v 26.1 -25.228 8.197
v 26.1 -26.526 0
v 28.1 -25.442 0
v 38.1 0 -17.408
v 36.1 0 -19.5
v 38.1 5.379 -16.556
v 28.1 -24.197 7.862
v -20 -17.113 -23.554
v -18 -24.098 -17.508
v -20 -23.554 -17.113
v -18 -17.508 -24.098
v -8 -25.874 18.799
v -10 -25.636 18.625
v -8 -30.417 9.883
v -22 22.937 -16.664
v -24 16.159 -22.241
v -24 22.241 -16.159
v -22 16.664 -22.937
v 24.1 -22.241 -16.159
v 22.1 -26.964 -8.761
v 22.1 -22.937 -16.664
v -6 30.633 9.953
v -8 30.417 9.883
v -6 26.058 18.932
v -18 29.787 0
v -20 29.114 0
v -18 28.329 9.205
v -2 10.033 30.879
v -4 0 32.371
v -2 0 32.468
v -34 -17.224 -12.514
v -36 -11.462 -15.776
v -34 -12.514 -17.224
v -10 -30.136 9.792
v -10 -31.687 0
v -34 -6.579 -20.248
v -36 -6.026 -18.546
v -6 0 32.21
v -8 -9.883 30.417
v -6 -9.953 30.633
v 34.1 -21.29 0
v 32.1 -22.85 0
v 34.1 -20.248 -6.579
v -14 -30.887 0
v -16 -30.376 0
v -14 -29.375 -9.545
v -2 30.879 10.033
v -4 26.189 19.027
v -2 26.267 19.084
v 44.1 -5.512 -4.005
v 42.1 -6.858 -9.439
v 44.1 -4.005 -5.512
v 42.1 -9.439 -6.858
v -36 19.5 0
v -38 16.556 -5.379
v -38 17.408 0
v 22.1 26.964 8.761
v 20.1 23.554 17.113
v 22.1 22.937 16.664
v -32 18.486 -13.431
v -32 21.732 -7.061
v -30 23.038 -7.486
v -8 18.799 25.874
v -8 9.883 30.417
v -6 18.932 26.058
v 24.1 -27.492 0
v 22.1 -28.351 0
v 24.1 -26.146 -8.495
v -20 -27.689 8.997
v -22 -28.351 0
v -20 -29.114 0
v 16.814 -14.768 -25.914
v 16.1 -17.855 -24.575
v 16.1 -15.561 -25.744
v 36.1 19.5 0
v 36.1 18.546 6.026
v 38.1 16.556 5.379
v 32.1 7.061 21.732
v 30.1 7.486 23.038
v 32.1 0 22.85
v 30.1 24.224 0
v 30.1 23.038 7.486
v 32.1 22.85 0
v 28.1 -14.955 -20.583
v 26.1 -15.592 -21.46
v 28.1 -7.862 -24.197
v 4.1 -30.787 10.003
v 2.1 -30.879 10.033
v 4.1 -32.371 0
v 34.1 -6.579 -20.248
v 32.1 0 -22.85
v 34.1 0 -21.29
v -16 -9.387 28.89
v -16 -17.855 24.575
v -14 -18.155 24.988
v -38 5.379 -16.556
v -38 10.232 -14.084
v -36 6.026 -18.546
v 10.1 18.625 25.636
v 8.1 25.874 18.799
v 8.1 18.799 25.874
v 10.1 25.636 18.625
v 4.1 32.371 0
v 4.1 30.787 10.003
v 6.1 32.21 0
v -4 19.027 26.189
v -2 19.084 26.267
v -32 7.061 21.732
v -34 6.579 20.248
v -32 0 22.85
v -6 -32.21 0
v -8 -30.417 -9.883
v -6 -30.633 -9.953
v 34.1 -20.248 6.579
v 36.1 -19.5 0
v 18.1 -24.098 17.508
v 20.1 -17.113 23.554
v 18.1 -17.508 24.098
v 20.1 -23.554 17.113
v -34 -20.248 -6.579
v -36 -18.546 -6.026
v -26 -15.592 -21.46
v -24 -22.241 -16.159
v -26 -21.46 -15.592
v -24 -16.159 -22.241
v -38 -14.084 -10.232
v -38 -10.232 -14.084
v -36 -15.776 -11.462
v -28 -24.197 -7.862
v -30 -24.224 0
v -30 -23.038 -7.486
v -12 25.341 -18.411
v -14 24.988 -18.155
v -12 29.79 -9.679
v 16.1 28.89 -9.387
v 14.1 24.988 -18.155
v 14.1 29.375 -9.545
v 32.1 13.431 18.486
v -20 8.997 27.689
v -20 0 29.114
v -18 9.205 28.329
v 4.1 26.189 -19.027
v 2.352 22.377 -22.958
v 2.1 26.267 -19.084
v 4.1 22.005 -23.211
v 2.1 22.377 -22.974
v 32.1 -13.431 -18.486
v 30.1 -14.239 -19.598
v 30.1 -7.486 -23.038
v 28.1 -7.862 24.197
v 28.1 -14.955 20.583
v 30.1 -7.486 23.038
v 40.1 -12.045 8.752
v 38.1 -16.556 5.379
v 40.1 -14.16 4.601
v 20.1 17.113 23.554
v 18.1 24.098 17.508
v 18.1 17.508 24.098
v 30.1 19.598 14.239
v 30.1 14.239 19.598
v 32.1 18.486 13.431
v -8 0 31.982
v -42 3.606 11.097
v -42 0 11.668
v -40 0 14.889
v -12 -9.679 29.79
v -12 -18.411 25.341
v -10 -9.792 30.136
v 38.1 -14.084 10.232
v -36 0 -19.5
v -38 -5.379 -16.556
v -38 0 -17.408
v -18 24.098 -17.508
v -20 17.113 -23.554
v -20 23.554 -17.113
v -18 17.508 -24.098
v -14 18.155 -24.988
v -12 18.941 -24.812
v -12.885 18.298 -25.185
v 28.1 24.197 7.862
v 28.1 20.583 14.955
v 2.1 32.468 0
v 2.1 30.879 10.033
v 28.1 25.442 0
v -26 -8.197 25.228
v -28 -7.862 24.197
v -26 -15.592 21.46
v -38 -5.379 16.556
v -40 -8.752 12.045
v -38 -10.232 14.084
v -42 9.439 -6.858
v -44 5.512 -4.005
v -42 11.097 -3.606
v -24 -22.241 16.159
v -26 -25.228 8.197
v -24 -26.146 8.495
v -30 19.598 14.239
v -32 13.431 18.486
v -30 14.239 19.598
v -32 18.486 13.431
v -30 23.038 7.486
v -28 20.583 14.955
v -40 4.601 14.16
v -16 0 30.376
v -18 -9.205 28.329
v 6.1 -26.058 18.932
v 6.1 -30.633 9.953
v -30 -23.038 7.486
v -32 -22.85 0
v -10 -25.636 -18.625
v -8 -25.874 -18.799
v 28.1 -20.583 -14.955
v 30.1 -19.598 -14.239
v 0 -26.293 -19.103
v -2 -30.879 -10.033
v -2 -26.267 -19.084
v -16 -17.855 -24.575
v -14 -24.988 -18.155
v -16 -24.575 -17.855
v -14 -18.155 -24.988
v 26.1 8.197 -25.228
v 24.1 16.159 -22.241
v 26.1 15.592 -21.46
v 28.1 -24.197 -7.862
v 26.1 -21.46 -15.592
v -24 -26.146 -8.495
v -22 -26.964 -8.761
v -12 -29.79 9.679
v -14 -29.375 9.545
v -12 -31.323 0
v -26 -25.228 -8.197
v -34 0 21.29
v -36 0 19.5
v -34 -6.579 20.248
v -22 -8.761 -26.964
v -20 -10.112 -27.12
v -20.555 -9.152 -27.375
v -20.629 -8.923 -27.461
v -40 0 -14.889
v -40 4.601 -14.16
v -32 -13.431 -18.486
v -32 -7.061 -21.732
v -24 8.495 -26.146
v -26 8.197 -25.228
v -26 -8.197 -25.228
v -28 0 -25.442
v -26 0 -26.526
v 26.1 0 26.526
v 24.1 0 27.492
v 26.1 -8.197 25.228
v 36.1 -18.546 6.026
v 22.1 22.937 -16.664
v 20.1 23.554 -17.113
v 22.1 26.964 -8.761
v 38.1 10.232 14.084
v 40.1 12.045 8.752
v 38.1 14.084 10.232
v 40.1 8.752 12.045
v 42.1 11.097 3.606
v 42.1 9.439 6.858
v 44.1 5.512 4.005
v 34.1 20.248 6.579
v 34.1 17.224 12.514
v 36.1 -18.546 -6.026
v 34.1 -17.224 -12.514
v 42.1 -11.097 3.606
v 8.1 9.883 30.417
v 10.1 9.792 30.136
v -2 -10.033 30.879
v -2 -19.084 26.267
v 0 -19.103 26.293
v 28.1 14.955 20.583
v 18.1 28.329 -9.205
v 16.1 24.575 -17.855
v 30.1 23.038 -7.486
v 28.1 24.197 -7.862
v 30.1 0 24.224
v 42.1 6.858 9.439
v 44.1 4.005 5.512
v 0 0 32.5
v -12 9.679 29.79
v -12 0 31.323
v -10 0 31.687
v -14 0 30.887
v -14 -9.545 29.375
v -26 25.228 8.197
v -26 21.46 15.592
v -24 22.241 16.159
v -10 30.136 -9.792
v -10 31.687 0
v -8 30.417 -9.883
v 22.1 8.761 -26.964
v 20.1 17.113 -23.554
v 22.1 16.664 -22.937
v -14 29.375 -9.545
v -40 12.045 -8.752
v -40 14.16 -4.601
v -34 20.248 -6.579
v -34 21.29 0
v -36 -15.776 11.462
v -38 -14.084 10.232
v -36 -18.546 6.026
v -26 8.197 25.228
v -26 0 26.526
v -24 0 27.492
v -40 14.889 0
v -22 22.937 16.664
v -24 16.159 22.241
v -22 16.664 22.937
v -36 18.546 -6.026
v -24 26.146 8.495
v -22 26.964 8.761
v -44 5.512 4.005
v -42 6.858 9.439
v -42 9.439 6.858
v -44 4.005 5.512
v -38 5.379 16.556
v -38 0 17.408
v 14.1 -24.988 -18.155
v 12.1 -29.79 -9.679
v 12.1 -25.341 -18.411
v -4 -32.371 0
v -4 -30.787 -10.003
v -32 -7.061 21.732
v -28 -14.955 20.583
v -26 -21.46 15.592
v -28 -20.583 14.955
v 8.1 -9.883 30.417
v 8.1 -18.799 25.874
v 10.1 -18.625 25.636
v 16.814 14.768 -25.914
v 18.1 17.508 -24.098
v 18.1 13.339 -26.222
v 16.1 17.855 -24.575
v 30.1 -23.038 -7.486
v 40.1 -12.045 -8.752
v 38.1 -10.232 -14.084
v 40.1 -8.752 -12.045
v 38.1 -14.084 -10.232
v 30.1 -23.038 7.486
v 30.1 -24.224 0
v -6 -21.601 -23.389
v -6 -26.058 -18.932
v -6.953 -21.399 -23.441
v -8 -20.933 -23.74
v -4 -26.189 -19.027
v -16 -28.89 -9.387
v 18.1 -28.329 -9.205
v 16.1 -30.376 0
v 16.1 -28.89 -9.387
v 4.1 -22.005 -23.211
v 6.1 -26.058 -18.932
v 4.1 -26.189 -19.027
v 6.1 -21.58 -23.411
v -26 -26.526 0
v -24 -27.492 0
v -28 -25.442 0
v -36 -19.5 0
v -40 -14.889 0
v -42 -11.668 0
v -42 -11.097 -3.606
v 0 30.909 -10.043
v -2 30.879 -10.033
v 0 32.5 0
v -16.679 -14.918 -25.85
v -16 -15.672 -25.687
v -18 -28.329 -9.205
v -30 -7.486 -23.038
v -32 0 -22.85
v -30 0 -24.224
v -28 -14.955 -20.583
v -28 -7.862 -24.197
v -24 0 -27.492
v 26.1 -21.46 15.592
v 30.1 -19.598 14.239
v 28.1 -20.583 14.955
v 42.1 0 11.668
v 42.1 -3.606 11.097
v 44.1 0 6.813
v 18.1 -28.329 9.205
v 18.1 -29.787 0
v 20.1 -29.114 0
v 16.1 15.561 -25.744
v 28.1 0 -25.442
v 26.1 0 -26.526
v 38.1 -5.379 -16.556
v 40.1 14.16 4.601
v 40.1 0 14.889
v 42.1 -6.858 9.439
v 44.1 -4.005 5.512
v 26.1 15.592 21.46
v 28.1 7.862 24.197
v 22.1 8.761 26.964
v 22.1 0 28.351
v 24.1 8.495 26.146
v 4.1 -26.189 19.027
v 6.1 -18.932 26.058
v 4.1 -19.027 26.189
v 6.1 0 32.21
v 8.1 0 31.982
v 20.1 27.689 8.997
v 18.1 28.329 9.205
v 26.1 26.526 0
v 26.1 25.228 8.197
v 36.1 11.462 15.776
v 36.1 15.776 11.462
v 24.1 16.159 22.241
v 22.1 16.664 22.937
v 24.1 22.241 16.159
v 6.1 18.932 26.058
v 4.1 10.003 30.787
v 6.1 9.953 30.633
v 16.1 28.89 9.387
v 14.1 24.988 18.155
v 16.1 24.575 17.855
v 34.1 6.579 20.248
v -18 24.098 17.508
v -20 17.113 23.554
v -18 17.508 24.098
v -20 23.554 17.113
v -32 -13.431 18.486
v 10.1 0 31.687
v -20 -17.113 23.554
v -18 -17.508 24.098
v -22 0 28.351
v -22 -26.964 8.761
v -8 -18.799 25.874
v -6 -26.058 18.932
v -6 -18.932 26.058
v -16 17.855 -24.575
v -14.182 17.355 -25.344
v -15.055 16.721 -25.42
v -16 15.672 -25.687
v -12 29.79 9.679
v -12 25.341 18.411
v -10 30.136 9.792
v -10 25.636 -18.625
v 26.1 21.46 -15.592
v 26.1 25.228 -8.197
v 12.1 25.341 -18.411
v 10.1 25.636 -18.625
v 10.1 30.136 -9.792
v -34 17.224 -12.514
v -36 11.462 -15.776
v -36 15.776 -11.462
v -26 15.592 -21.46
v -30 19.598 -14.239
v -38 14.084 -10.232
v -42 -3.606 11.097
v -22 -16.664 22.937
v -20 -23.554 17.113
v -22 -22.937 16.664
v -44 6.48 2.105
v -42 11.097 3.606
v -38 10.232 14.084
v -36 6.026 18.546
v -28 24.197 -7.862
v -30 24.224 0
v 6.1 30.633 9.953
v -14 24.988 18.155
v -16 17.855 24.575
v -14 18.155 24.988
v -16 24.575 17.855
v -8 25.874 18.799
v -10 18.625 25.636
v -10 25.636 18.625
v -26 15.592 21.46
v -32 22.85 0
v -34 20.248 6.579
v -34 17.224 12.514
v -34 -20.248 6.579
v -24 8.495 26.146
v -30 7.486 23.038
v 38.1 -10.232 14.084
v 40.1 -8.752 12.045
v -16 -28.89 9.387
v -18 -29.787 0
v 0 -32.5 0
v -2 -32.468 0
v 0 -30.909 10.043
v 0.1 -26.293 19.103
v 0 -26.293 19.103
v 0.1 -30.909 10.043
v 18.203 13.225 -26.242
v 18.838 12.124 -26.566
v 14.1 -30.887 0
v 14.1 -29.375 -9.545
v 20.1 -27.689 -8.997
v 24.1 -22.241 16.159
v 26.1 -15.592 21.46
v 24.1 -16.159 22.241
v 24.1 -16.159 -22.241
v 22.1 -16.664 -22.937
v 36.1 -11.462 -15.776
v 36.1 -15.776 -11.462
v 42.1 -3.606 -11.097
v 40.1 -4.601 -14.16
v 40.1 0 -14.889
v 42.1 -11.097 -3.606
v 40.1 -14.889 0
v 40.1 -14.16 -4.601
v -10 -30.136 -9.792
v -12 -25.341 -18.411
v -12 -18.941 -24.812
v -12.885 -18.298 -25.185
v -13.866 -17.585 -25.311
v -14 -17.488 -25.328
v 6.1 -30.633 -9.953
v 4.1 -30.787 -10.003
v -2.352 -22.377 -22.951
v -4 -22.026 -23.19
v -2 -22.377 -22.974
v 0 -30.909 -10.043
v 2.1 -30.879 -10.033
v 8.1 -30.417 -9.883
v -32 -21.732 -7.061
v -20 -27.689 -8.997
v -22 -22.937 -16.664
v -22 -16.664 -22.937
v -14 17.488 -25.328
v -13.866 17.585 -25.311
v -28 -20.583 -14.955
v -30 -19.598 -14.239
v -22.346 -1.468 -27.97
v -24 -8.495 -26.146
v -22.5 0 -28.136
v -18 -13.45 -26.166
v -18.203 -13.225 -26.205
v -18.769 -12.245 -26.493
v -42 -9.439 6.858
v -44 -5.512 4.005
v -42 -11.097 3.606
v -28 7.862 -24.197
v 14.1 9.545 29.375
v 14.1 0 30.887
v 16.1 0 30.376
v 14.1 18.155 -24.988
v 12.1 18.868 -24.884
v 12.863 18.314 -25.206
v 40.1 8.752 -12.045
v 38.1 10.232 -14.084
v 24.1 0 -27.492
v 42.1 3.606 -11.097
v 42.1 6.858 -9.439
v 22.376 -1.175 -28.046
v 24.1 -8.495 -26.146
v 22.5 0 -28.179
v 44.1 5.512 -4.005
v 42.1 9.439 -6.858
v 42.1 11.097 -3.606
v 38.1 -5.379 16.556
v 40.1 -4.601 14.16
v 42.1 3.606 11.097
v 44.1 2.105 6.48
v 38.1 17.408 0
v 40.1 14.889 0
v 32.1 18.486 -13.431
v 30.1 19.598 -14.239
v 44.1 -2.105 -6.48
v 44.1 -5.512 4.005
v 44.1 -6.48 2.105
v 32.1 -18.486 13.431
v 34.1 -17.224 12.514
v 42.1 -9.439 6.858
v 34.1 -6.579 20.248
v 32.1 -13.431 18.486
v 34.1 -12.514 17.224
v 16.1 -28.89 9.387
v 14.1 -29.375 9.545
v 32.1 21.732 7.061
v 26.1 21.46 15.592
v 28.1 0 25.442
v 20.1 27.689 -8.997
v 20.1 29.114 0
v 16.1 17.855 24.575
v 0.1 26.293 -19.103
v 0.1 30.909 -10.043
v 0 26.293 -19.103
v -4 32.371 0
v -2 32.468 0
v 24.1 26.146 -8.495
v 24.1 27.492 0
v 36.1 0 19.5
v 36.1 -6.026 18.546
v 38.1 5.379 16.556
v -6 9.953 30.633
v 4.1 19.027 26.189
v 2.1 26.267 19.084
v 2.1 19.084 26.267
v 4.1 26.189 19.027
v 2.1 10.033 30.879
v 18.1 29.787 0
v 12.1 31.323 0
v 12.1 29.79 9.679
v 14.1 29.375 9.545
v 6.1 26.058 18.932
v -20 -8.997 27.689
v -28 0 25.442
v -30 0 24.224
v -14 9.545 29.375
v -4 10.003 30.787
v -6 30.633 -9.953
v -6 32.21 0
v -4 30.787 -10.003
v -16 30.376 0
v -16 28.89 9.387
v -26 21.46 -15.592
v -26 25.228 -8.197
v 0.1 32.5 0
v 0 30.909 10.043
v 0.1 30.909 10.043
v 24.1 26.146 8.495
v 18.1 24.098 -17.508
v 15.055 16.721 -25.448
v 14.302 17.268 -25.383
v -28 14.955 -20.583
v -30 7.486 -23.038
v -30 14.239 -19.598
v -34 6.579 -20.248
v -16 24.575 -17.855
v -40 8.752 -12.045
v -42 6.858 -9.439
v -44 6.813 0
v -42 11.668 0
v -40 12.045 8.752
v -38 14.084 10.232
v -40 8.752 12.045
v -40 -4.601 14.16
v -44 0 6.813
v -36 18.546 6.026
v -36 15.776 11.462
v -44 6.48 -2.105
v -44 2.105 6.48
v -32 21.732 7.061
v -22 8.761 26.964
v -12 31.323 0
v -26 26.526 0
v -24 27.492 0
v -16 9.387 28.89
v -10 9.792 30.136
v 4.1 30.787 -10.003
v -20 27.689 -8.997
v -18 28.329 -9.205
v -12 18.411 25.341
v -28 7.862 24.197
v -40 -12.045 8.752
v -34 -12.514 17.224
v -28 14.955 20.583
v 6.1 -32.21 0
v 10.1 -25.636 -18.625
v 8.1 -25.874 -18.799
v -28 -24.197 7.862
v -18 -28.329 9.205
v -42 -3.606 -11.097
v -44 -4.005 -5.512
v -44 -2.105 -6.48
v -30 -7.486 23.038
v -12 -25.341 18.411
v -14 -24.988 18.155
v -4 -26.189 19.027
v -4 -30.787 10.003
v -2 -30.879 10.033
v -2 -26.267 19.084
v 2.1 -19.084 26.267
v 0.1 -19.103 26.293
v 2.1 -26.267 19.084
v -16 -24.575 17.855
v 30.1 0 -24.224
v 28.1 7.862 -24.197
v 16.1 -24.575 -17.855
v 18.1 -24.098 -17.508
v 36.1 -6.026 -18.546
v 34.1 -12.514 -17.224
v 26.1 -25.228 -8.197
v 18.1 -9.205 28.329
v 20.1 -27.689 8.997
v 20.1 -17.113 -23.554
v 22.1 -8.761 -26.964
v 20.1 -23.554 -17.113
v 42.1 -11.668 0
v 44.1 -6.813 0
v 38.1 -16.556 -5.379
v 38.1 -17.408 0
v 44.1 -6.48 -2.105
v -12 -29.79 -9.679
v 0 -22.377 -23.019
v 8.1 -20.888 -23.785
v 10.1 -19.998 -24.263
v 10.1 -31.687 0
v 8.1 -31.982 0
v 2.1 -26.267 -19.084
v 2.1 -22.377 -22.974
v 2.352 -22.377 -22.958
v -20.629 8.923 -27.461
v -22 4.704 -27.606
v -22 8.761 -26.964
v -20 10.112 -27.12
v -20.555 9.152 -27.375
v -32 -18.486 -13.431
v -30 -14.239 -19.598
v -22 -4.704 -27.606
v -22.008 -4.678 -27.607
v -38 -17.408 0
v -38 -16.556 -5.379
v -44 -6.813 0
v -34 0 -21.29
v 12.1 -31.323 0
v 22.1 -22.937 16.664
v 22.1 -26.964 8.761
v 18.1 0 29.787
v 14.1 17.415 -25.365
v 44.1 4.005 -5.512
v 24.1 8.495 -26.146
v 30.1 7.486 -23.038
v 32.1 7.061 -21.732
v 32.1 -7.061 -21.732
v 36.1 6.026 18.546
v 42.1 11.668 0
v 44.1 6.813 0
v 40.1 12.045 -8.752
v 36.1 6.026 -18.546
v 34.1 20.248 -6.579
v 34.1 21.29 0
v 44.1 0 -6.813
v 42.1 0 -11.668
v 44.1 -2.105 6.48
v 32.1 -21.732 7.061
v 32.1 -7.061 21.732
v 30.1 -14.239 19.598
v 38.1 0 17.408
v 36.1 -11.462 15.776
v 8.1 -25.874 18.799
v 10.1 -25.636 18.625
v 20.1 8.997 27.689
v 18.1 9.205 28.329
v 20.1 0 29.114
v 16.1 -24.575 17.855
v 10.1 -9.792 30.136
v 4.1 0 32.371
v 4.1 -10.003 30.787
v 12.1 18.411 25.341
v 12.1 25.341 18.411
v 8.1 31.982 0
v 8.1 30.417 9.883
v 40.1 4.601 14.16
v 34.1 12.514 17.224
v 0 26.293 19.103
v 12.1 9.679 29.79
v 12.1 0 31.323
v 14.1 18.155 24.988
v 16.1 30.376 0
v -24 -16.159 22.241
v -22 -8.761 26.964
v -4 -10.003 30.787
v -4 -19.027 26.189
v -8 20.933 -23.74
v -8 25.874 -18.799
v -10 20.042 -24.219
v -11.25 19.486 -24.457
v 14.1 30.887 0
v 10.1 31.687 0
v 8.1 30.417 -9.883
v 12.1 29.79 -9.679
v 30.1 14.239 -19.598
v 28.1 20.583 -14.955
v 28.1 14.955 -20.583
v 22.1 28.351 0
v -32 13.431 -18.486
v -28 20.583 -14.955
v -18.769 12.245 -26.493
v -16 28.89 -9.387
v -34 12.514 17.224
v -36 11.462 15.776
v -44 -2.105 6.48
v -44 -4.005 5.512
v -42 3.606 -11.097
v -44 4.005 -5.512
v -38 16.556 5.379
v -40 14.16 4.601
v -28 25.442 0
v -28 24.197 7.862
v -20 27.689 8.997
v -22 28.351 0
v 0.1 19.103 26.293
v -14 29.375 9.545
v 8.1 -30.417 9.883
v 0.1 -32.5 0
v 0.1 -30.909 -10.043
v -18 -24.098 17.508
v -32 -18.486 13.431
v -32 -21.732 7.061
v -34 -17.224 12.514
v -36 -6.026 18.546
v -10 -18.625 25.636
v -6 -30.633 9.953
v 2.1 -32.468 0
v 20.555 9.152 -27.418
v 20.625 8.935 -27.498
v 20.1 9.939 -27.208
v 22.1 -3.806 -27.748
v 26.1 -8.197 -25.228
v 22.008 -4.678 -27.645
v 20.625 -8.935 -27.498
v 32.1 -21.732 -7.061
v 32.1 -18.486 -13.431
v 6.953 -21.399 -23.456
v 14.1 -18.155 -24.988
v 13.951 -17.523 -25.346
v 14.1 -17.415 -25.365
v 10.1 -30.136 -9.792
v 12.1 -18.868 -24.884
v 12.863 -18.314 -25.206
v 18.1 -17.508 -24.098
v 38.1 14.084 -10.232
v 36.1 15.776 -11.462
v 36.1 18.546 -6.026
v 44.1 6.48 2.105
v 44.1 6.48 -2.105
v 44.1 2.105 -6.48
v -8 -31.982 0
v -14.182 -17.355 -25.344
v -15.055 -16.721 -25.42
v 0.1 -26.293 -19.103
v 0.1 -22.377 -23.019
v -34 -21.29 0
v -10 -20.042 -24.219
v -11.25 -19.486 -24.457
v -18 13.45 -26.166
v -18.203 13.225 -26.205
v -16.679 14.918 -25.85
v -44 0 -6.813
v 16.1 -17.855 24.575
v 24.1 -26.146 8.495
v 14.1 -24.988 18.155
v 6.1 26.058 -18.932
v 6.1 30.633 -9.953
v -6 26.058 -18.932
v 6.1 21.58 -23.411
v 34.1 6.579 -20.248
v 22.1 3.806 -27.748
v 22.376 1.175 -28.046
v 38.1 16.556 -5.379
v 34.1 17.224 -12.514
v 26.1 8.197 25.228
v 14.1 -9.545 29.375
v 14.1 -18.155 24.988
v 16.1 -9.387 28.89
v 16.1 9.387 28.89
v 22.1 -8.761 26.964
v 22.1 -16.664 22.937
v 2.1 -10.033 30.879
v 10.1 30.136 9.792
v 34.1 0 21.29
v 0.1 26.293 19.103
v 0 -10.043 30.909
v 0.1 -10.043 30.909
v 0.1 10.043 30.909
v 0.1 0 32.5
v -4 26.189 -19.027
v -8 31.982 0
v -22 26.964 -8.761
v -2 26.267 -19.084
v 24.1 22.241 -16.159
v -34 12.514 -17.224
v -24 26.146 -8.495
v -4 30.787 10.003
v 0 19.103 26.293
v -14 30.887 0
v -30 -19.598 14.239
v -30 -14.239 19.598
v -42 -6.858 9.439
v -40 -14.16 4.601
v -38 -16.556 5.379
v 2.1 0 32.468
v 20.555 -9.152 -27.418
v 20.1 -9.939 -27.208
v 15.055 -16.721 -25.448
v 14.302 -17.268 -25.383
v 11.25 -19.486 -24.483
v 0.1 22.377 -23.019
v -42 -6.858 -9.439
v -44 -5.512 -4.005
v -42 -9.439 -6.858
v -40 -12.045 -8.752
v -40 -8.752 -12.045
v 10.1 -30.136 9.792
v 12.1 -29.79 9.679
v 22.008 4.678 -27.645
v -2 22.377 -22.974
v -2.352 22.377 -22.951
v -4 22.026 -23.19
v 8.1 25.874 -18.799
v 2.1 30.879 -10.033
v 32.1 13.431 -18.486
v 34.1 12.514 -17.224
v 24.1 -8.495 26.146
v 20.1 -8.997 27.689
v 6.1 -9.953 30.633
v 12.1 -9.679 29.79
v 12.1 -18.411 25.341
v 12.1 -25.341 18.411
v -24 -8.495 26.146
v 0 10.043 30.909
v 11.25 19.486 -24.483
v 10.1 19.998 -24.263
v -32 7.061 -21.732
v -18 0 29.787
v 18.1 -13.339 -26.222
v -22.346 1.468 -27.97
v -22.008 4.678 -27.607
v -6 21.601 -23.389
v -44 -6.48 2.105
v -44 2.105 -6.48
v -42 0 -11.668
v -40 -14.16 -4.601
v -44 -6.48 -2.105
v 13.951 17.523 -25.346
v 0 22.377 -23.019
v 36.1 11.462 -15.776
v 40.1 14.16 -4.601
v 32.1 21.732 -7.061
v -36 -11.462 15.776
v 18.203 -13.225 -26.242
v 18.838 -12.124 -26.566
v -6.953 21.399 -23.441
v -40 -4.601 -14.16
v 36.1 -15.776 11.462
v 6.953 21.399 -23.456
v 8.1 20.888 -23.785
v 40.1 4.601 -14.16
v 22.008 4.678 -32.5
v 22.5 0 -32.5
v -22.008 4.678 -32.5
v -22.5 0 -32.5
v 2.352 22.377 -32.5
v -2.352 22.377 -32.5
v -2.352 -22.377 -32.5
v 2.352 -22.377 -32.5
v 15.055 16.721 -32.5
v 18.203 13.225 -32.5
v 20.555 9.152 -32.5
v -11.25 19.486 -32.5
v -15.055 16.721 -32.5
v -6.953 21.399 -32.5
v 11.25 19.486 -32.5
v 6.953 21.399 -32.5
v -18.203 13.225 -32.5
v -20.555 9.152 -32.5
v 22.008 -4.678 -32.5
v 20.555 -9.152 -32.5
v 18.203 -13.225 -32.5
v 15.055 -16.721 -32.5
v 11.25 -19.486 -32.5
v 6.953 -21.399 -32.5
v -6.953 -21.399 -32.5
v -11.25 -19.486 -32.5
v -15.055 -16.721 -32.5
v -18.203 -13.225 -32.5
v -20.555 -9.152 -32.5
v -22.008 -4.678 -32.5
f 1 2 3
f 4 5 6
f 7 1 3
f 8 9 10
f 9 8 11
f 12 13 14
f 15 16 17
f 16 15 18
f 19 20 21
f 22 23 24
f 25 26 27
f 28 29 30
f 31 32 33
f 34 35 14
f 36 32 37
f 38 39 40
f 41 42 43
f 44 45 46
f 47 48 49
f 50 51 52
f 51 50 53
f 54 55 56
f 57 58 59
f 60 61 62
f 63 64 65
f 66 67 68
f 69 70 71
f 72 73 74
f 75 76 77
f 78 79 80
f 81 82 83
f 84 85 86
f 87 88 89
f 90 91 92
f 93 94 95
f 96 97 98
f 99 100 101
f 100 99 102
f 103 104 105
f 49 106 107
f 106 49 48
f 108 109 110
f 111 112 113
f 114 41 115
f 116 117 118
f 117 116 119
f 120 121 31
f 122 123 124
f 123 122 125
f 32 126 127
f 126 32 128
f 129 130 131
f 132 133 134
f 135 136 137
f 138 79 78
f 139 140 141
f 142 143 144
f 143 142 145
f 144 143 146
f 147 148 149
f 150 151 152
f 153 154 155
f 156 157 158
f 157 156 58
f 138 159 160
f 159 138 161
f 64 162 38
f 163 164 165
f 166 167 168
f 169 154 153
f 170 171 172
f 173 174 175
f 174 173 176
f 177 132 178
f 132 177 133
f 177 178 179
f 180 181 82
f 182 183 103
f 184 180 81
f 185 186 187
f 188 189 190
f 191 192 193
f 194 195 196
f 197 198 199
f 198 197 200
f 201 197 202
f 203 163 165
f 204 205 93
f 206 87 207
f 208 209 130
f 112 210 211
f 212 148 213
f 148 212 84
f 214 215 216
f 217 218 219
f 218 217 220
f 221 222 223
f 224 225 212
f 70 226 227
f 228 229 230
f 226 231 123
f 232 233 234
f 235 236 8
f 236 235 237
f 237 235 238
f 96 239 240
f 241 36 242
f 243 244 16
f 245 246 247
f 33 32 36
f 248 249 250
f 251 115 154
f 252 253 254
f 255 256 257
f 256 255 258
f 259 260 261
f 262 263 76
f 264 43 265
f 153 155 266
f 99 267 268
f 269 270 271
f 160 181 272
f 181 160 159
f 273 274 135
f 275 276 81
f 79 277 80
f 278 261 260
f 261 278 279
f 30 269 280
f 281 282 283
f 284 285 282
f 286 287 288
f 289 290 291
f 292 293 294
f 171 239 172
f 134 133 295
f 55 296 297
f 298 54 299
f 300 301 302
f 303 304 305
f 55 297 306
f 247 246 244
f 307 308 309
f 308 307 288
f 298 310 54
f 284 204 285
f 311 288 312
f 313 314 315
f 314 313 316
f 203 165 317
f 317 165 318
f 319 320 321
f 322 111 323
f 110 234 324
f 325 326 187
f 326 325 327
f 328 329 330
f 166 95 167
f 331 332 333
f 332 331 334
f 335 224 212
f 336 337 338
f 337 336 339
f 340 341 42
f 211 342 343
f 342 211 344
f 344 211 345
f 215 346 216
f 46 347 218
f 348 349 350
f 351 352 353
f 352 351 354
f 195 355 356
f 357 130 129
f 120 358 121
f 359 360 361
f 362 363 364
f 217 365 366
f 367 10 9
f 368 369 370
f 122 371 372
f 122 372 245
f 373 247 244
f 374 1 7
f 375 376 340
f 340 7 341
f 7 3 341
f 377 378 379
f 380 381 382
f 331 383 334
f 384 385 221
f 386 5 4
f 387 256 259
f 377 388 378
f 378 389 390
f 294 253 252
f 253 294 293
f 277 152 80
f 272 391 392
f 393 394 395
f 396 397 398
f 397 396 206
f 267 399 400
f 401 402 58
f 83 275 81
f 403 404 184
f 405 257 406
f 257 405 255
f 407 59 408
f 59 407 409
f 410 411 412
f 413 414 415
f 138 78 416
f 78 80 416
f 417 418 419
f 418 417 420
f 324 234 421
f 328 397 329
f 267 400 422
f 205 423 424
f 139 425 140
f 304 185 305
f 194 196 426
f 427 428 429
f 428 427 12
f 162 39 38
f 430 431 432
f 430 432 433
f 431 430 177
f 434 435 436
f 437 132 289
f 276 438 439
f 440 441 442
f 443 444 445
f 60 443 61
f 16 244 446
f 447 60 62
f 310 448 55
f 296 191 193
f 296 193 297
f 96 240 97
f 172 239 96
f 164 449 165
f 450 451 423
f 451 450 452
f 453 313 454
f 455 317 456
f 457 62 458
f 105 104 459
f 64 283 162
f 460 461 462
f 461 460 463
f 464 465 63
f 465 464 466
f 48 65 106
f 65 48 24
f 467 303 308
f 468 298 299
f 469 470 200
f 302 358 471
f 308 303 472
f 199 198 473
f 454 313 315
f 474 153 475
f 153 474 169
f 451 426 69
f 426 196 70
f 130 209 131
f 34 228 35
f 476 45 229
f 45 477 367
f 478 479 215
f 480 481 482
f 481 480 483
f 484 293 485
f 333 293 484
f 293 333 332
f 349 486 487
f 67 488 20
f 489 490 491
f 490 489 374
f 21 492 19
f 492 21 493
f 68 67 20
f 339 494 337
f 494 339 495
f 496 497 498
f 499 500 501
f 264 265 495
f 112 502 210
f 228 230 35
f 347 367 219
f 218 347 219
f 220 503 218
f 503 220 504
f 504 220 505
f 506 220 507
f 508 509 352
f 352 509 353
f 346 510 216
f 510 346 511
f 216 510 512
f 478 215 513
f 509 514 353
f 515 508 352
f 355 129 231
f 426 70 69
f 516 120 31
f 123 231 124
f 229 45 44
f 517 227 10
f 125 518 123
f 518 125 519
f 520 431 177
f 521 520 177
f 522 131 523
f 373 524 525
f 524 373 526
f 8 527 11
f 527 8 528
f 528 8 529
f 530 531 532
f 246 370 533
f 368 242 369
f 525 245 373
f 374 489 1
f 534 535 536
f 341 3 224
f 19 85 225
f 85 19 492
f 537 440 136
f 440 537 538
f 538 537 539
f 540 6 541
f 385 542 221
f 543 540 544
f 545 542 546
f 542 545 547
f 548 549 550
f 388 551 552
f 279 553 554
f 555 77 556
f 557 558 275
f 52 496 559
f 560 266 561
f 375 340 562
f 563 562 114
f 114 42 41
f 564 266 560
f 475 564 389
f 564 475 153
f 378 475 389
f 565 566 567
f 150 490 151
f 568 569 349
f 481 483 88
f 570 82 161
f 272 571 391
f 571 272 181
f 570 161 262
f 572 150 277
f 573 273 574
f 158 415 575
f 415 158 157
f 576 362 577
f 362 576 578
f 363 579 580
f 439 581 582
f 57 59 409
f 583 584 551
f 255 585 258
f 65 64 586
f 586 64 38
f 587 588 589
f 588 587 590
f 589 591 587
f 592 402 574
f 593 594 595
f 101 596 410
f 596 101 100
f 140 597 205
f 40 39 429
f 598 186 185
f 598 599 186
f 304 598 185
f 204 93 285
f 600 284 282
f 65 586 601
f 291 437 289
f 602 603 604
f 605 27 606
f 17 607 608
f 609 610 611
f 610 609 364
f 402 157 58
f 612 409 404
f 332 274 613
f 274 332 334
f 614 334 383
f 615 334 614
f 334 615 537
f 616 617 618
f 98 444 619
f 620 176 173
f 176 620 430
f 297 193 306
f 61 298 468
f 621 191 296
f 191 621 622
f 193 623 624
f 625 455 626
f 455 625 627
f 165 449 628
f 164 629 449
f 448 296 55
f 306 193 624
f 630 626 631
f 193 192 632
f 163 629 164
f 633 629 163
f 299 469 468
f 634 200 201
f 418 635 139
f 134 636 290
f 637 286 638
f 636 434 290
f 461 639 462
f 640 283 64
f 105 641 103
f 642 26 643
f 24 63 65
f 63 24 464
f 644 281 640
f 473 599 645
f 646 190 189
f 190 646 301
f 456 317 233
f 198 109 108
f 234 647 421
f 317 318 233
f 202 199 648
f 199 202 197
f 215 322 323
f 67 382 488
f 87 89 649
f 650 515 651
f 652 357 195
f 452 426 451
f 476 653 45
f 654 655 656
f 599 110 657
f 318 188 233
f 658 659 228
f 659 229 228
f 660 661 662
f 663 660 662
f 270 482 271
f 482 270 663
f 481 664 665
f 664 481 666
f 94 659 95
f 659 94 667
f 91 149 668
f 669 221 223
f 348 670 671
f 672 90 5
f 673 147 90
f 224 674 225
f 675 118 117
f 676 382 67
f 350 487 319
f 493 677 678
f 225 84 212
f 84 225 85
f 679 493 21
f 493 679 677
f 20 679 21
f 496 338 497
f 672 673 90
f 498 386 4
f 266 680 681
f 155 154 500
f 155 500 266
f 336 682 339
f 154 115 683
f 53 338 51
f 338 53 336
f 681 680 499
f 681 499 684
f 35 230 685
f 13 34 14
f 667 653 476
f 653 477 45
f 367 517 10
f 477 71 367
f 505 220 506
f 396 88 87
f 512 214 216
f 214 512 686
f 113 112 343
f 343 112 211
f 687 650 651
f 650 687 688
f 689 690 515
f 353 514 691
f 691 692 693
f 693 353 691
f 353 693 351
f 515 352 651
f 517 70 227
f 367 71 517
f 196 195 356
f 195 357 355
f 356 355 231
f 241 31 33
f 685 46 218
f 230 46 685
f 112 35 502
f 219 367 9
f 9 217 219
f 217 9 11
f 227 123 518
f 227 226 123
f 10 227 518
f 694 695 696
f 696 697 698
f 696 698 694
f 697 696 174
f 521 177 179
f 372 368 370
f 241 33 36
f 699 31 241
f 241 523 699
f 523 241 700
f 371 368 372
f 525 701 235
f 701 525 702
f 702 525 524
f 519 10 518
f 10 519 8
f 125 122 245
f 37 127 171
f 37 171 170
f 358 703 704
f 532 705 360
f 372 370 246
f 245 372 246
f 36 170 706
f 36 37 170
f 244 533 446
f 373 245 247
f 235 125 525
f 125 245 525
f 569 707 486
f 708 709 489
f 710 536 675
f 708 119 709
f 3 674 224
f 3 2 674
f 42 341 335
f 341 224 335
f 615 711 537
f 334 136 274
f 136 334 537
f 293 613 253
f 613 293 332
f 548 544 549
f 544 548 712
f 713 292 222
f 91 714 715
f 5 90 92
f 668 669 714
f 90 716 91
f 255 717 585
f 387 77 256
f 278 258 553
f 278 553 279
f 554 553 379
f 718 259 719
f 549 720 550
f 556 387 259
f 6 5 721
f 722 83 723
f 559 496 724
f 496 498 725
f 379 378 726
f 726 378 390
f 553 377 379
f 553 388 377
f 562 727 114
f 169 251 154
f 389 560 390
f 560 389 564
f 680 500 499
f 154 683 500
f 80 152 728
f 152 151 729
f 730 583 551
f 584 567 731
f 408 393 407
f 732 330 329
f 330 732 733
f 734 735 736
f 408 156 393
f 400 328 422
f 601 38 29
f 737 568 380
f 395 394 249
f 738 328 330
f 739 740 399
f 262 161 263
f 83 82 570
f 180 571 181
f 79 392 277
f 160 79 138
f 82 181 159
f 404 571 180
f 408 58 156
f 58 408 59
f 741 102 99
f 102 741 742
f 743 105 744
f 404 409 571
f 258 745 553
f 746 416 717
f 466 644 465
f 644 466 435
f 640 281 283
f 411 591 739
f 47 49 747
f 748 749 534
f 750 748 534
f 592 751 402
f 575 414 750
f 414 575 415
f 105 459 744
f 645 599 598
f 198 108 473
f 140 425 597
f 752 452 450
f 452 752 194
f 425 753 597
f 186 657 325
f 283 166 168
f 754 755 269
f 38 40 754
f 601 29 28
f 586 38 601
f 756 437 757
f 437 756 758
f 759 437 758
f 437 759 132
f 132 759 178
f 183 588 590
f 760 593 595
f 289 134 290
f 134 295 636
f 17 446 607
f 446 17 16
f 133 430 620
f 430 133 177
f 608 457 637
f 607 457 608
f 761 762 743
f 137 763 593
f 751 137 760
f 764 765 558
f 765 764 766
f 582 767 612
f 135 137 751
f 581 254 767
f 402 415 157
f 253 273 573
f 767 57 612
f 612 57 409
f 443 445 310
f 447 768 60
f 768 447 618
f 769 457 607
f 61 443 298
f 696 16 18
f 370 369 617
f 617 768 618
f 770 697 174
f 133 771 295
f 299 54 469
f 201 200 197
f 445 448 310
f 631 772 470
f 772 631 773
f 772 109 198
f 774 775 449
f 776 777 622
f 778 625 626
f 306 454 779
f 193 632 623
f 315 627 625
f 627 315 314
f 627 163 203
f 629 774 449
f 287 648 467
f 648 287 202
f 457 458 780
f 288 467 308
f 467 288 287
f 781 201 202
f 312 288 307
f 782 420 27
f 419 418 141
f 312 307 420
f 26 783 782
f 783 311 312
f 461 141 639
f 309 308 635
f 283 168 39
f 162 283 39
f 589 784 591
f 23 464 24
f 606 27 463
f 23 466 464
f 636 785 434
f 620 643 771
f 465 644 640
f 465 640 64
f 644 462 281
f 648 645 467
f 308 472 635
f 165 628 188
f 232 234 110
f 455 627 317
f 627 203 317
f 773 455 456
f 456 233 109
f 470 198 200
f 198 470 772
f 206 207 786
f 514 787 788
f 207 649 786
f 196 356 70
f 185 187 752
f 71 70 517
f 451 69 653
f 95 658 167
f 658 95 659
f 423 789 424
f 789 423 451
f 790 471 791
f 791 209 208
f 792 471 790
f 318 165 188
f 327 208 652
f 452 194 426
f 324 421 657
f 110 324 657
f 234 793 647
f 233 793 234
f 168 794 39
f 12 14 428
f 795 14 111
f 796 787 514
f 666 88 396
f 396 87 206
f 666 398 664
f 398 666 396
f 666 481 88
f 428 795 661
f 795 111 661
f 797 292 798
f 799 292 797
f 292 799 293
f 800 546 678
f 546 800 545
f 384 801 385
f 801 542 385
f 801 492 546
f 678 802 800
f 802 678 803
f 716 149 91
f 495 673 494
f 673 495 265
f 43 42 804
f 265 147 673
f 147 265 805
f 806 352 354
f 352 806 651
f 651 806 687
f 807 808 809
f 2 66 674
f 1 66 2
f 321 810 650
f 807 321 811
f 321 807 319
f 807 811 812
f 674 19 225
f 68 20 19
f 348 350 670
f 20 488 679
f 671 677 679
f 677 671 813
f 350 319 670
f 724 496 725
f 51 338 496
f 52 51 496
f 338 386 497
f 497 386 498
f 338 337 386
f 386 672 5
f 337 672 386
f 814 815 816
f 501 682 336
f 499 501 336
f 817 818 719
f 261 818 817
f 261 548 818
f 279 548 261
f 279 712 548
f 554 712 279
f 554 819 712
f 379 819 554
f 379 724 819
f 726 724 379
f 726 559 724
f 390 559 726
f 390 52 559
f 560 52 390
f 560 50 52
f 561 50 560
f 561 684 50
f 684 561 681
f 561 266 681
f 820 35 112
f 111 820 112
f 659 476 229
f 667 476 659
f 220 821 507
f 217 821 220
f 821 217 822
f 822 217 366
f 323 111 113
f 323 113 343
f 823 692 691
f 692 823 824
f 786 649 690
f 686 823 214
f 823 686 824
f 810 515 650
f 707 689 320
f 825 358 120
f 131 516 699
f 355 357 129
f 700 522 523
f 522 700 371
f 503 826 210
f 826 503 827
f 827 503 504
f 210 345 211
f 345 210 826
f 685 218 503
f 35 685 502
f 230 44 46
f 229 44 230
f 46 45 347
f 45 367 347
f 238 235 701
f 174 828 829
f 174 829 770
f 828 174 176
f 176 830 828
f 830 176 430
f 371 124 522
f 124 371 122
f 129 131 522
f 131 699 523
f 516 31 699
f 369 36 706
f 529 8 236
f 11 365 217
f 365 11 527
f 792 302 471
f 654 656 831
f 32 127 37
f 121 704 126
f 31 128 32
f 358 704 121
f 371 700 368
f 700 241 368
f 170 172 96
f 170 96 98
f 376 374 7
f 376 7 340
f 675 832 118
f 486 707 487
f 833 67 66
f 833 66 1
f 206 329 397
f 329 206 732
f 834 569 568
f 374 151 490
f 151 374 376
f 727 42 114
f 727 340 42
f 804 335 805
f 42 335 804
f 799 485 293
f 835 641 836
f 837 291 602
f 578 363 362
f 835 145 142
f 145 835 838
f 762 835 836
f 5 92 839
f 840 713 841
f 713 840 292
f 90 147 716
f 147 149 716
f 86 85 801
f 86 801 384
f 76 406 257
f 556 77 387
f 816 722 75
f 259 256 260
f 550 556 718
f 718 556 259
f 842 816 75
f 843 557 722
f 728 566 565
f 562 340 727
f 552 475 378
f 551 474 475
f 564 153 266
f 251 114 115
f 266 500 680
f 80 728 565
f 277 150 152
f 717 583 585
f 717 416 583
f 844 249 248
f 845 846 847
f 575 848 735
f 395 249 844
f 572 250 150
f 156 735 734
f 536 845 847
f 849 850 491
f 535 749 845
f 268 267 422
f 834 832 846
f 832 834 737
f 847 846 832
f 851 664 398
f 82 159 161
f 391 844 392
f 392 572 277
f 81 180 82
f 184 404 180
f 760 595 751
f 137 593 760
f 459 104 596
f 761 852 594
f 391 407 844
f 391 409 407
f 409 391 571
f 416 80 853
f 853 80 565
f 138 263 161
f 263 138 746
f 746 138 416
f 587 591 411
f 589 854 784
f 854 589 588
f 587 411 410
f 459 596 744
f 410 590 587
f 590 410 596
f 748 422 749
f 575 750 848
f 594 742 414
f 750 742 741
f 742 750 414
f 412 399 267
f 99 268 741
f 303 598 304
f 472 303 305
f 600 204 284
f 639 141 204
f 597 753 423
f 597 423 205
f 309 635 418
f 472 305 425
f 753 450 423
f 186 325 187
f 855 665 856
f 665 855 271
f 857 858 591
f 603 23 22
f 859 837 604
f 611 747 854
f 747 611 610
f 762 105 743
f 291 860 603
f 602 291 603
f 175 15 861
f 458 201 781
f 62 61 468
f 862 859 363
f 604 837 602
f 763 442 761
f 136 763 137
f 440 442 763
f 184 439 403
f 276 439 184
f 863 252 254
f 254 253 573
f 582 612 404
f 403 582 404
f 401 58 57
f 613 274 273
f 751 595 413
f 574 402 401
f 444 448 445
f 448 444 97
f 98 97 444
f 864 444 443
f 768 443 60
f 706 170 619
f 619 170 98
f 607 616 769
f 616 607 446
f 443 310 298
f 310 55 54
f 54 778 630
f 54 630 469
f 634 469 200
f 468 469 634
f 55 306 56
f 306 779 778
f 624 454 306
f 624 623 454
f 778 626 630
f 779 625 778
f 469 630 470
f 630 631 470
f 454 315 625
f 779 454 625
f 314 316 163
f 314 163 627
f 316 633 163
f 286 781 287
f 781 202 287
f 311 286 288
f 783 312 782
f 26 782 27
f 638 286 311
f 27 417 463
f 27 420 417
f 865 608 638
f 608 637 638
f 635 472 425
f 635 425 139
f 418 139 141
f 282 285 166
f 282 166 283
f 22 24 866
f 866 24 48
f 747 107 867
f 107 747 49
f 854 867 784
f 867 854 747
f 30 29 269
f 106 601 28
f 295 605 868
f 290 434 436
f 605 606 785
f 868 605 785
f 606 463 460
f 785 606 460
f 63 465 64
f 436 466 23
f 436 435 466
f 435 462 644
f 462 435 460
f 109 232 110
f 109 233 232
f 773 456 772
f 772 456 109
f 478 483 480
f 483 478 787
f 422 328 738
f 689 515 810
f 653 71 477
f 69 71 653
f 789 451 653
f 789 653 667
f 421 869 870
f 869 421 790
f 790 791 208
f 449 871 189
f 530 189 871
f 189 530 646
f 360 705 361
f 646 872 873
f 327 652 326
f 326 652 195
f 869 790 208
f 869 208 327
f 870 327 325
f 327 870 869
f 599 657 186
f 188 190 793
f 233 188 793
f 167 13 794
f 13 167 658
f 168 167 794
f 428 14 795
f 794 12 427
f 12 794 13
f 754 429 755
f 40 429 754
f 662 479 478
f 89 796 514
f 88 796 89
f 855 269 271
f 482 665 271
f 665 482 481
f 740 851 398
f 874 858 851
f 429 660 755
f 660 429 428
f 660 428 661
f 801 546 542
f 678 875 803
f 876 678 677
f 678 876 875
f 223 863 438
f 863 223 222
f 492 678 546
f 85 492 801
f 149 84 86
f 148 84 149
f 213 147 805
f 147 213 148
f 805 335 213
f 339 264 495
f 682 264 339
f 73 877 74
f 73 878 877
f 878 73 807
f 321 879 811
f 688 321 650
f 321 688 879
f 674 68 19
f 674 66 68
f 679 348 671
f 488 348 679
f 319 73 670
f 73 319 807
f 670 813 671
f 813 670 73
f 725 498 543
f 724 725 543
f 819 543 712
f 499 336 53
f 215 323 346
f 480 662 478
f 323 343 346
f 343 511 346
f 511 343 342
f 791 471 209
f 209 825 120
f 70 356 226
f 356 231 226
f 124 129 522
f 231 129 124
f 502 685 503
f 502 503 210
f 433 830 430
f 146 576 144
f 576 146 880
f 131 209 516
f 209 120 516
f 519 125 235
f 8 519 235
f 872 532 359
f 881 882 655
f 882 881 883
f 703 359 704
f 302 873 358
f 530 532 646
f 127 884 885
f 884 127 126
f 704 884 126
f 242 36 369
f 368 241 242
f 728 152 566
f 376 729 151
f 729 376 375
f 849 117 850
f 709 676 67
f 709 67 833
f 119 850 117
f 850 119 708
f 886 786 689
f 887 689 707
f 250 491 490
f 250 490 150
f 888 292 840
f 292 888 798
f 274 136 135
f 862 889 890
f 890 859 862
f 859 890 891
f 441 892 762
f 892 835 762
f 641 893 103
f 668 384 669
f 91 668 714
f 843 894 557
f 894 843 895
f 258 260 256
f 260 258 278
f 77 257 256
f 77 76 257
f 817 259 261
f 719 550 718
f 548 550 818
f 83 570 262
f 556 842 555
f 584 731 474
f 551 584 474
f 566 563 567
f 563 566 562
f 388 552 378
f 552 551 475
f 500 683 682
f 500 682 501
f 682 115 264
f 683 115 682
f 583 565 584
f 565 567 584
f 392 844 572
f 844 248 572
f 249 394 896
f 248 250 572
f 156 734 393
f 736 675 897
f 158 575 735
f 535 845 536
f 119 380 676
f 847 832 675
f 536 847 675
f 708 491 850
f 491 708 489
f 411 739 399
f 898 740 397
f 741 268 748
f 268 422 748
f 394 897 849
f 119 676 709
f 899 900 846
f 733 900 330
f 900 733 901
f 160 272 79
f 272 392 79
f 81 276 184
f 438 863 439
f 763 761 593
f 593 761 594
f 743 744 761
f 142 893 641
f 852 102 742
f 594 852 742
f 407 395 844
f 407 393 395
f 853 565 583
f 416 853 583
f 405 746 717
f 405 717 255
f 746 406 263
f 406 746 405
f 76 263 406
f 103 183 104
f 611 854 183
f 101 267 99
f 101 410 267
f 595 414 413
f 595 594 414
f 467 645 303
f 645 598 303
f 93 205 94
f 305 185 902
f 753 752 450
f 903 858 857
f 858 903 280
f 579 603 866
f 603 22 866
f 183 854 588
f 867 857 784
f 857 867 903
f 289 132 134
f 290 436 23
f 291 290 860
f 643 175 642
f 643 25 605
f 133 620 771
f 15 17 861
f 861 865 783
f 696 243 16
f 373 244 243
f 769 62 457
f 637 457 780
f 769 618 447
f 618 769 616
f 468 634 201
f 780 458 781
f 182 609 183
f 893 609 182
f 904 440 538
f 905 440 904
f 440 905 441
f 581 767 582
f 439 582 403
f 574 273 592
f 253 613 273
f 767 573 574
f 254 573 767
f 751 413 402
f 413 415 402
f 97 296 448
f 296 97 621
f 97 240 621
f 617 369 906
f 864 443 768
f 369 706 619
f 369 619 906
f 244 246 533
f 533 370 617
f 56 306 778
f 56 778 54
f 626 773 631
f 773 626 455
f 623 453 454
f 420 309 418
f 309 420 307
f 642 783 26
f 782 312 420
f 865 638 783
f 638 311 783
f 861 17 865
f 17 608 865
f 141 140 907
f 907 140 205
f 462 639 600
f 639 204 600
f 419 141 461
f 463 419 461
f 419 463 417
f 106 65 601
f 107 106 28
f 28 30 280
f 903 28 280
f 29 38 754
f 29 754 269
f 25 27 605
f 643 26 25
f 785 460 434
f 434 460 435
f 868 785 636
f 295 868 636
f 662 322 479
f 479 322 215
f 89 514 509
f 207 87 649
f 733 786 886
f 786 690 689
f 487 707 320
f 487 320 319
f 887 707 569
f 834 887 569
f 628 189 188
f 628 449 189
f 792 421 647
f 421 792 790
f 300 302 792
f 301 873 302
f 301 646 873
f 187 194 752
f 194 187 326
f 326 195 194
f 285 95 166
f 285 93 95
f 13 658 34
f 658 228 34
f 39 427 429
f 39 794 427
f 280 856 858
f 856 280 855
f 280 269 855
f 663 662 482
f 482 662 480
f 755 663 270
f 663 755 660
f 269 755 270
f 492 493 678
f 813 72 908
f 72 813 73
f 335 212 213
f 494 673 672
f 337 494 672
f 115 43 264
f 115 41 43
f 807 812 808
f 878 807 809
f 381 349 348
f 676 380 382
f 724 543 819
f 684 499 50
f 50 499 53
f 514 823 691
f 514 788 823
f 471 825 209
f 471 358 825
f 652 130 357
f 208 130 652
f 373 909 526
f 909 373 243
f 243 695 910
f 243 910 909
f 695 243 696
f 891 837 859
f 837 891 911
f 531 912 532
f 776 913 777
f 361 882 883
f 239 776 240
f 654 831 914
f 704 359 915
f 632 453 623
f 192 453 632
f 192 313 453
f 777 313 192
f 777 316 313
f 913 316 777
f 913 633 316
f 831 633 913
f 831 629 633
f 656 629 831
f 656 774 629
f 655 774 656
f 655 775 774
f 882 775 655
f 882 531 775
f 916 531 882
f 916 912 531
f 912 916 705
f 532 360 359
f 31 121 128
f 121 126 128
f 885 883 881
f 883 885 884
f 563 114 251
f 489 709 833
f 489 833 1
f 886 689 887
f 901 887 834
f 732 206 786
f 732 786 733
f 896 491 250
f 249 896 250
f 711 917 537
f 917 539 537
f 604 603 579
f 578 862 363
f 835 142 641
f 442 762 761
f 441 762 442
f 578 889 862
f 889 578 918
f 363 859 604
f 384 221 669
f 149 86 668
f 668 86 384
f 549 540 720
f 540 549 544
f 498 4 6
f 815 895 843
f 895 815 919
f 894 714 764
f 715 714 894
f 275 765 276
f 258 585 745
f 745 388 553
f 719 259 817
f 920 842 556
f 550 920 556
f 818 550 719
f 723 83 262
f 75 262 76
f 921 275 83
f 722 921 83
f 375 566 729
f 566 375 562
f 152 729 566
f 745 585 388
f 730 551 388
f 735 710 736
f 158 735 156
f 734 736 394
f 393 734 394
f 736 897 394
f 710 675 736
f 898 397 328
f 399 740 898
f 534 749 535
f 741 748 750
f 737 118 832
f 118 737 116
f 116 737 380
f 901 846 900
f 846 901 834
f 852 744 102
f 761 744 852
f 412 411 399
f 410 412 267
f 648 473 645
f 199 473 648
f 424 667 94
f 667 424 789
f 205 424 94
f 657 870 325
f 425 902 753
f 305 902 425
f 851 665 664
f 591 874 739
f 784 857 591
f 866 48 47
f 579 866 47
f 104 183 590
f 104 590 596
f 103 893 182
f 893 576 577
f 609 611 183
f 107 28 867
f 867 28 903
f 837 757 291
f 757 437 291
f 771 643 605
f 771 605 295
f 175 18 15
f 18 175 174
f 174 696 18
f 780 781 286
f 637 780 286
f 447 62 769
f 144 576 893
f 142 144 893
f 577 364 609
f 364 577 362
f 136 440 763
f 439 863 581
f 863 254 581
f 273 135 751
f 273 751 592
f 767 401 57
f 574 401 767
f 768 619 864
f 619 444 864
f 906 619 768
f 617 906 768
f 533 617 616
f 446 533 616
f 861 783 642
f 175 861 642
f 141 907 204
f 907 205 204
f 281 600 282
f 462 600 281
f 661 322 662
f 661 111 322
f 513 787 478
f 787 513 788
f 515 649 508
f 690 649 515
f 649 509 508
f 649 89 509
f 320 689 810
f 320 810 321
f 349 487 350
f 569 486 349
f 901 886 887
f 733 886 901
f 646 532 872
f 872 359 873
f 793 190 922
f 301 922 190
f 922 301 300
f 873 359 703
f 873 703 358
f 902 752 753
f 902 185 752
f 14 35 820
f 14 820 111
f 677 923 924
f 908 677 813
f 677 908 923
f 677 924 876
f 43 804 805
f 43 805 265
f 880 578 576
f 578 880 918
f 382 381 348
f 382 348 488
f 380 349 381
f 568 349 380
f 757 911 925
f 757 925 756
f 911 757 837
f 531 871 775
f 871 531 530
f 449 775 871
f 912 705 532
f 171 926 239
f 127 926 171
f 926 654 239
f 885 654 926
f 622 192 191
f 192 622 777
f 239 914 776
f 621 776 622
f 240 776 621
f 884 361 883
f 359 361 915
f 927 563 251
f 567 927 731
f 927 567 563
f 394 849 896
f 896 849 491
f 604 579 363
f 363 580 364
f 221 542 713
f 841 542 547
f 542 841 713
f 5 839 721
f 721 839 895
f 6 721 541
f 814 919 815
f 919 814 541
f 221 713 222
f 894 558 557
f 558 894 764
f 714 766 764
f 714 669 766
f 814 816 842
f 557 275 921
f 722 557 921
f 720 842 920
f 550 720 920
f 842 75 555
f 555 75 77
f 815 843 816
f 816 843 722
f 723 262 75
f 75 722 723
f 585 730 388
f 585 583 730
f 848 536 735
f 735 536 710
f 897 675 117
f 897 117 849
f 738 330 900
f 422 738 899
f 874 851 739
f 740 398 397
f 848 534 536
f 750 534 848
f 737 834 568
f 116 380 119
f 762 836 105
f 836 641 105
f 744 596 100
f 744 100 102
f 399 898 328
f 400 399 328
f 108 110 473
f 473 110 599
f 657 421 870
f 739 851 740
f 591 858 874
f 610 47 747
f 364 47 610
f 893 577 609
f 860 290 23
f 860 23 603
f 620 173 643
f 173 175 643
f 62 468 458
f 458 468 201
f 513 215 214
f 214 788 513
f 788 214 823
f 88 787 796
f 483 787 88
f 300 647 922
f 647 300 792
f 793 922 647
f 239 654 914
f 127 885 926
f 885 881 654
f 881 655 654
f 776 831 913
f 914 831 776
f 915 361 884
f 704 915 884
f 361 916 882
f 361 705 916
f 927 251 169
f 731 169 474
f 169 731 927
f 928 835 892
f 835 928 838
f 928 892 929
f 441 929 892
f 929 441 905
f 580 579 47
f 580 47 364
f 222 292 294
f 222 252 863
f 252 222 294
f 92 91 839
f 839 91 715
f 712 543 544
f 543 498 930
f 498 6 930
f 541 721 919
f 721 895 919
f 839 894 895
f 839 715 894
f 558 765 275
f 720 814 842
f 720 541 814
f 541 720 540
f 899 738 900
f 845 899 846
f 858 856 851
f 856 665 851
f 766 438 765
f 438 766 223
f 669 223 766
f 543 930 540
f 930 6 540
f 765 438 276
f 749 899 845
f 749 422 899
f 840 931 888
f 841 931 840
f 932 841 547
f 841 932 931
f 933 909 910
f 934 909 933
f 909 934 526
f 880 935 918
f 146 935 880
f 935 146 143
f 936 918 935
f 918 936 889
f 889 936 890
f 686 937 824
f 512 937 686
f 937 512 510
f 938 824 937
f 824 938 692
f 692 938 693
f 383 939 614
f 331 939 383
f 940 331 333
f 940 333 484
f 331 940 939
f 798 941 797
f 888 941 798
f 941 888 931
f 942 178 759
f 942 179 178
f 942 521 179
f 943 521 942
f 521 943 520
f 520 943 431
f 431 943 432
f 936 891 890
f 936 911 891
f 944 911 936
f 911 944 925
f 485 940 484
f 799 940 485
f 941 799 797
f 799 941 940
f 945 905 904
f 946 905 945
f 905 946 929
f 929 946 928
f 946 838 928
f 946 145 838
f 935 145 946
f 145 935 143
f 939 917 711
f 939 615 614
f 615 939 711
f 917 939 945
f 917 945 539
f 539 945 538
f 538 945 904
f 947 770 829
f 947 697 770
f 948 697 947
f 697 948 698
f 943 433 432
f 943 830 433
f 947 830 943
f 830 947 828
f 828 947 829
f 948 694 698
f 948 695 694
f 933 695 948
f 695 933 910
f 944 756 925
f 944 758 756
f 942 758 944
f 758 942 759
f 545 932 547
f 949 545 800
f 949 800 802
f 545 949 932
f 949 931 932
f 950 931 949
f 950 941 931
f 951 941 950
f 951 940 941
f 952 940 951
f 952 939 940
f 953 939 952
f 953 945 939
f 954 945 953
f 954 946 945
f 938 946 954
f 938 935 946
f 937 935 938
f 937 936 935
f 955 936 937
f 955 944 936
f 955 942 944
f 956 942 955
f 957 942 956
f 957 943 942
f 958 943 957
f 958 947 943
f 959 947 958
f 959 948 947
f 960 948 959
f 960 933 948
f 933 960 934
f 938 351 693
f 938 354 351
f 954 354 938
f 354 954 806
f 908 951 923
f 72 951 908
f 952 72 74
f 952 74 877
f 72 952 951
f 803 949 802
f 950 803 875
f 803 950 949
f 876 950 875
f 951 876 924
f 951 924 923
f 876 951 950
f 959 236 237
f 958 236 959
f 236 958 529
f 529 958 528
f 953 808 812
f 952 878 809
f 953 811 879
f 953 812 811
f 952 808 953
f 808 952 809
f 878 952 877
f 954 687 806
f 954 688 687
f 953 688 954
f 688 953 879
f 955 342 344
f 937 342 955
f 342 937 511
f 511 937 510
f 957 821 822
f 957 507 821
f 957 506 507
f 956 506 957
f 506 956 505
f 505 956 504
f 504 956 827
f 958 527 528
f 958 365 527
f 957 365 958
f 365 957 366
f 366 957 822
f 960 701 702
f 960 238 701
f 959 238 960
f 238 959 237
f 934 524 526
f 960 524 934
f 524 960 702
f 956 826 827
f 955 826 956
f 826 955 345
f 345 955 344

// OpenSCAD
shell();
translate([0, 0, -65/2])
cylinder(h = 20, d = 45);


module shell() {
    hull() {
        for(x = [-90:2:90]) {
            cross_section(x, $fn = 20);
        }
    }
}

module cross_section(x, height = 65, length = 90, $fn = 15) {
    y = sqrt(pow(height/2, 2) - (pow(height/2, 2)*pow(x, 2))/pow(length/2, 2));
    translate([x, 0])
    rotate([0, 90])
    cylinder(h = 0.1, r = y);
}
